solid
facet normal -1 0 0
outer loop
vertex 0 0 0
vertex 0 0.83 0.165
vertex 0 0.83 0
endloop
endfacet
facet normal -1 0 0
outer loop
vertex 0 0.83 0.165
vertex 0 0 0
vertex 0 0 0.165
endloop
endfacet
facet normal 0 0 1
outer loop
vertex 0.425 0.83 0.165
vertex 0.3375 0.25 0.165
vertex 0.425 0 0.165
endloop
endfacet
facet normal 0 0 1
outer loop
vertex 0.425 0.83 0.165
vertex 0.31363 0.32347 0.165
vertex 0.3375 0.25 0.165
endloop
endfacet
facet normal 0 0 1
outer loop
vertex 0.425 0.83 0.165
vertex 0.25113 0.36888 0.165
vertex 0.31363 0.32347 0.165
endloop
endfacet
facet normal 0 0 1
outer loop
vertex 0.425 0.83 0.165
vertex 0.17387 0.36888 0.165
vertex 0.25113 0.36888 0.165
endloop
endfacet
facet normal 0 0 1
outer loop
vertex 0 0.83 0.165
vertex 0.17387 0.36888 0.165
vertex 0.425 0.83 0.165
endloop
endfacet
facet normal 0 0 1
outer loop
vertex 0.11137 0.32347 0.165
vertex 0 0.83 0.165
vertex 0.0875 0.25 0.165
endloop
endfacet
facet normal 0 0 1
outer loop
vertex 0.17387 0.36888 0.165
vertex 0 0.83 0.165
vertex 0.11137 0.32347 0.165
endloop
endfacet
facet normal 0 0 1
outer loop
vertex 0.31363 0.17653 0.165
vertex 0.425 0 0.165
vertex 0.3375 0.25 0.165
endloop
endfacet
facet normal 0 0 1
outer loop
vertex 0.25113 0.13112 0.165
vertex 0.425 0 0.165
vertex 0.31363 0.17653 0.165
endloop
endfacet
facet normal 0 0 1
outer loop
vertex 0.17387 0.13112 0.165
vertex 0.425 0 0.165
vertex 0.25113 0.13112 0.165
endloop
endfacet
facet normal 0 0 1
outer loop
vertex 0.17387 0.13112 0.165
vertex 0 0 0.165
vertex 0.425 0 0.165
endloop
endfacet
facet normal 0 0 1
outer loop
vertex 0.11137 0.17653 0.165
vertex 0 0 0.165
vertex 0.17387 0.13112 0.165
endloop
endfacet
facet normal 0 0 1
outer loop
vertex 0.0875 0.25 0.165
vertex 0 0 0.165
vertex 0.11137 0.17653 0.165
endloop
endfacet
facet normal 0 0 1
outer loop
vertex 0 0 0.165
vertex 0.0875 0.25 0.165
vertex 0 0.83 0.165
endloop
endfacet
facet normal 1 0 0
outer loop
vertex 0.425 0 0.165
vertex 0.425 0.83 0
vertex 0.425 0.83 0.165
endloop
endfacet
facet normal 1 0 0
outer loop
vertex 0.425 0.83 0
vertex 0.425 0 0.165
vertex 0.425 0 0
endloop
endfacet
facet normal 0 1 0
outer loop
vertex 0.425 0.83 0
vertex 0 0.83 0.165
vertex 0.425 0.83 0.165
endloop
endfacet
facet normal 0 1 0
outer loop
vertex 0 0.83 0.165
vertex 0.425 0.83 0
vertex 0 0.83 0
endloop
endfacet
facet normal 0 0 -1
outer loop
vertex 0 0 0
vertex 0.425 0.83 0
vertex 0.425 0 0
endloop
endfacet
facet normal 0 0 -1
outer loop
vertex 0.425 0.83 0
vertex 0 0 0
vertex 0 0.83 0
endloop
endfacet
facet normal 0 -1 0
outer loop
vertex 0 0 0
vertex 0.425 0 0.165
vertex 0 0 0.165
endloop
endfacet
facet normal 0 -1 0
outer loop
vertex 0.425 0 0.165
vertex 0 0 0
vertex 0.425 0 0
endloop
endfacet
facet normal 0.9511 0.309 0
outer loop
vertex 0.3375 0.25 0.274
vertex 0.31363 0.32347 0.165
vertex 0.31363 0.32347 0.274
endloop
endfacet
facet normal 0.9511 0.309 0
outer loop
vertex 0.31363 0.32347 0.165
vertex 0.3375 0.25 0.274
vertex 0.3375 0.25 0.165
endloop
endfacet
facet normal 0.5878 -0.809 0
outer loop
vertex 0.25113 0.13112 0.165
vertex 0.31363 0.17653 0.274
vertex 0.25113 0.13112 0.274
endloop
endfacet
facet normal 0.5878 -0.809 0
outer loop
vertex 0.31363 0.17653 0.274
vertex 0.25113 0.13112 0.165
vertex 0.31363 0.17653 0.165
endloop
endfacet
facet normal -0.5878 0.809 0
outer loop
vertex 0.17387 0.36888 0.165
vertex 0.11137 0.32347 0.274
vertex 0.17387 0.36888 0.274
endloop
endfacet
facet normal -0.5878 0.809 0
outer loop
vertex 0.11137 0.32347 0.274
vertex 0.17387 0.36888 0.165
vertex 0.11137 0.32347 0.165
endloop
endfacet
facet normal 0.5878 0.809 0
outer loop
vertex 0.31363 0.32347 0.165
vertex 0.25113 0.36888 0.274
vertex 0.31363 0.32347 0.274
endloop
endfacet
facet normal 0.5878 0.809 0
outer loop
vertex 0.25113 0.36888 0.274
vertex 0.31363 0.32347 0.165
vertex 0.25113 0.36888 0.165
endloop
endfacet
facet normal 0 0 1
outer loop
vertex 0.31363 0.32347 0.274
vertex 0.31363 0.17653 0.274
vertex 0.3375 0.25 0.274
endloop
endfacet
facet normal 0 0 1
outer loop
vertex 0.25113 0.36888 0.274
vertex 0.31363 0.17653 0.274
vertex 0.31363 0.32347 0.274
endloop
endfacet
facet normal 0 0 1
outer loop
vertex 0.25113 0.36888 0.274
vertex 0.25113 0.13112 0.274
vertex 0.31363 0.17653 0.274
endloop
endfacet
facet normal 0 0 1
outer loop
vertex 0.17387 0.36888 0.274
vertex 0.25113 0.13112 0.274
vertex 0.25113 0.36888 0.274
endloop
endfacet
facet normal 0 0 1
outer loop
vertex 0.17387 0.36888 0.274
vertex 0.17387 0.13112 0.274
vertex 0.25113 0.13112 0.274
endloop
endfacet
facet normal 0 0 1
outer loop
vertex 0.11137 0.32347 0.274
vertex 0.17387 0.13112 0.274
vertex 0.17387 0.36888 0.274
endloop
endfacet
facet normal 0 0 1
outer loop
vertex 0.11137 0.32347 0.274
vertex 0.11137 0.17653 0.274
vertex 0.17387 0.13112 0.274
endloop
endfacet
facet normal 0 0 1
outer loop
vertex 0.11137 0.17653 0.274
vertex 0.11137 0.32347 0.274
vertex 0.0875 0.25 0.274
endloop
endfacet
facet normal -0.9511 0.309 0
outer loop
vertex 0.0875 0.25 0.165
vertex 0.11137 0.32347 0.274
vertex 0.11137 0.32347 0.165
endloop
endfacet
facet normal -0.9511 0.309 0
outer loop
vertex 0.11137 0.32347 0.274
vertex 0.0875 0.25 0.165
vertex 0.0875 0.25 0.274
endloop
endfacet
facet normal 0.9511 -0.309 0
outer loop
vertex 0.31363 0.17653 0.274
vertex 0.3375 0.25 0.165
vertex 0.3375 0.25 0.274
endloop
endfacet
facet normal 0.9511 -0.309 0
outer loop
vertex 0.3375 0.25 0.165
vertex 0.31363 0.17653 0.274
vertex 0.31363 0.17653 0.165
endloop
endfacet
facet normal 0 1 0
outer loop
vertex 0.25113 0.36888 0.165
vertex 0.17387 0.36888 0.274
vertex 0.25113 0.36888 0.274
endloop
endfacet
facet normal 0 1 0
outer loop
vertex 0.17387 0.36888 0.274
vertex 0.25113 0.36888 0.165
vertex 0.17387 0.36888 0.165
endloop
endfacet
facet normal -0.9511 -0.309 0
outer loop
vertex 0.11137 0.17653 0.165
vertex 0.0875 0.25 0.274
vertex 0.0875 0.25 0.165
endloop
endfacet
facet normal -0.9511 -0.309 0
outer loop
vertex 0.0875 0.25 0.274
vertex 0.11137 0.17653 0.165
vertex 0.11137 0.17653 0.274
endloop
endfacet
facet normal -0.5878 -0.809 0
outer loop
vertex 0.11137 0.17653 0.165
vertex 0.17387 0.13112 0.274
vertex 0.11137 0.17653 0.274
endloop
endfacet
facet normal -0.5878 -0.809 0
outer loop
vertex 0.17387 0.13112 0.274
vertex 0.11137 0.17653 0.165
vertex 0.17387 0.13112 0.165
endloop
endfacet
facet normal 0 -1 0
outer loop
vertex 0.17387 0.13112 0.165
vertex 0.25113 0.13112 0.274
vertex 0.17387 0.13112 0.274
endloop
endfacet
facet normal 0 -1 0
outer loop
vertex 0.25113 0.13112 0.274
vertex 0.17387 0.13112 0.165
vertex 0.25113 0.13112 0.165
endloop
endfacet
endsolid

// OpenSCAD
cube([0.425,0.83,0.165]);
translate([0.2125,.25,0.165]) {
    cylinder(0.109, 0.125,0.125, $fn=10);
}
